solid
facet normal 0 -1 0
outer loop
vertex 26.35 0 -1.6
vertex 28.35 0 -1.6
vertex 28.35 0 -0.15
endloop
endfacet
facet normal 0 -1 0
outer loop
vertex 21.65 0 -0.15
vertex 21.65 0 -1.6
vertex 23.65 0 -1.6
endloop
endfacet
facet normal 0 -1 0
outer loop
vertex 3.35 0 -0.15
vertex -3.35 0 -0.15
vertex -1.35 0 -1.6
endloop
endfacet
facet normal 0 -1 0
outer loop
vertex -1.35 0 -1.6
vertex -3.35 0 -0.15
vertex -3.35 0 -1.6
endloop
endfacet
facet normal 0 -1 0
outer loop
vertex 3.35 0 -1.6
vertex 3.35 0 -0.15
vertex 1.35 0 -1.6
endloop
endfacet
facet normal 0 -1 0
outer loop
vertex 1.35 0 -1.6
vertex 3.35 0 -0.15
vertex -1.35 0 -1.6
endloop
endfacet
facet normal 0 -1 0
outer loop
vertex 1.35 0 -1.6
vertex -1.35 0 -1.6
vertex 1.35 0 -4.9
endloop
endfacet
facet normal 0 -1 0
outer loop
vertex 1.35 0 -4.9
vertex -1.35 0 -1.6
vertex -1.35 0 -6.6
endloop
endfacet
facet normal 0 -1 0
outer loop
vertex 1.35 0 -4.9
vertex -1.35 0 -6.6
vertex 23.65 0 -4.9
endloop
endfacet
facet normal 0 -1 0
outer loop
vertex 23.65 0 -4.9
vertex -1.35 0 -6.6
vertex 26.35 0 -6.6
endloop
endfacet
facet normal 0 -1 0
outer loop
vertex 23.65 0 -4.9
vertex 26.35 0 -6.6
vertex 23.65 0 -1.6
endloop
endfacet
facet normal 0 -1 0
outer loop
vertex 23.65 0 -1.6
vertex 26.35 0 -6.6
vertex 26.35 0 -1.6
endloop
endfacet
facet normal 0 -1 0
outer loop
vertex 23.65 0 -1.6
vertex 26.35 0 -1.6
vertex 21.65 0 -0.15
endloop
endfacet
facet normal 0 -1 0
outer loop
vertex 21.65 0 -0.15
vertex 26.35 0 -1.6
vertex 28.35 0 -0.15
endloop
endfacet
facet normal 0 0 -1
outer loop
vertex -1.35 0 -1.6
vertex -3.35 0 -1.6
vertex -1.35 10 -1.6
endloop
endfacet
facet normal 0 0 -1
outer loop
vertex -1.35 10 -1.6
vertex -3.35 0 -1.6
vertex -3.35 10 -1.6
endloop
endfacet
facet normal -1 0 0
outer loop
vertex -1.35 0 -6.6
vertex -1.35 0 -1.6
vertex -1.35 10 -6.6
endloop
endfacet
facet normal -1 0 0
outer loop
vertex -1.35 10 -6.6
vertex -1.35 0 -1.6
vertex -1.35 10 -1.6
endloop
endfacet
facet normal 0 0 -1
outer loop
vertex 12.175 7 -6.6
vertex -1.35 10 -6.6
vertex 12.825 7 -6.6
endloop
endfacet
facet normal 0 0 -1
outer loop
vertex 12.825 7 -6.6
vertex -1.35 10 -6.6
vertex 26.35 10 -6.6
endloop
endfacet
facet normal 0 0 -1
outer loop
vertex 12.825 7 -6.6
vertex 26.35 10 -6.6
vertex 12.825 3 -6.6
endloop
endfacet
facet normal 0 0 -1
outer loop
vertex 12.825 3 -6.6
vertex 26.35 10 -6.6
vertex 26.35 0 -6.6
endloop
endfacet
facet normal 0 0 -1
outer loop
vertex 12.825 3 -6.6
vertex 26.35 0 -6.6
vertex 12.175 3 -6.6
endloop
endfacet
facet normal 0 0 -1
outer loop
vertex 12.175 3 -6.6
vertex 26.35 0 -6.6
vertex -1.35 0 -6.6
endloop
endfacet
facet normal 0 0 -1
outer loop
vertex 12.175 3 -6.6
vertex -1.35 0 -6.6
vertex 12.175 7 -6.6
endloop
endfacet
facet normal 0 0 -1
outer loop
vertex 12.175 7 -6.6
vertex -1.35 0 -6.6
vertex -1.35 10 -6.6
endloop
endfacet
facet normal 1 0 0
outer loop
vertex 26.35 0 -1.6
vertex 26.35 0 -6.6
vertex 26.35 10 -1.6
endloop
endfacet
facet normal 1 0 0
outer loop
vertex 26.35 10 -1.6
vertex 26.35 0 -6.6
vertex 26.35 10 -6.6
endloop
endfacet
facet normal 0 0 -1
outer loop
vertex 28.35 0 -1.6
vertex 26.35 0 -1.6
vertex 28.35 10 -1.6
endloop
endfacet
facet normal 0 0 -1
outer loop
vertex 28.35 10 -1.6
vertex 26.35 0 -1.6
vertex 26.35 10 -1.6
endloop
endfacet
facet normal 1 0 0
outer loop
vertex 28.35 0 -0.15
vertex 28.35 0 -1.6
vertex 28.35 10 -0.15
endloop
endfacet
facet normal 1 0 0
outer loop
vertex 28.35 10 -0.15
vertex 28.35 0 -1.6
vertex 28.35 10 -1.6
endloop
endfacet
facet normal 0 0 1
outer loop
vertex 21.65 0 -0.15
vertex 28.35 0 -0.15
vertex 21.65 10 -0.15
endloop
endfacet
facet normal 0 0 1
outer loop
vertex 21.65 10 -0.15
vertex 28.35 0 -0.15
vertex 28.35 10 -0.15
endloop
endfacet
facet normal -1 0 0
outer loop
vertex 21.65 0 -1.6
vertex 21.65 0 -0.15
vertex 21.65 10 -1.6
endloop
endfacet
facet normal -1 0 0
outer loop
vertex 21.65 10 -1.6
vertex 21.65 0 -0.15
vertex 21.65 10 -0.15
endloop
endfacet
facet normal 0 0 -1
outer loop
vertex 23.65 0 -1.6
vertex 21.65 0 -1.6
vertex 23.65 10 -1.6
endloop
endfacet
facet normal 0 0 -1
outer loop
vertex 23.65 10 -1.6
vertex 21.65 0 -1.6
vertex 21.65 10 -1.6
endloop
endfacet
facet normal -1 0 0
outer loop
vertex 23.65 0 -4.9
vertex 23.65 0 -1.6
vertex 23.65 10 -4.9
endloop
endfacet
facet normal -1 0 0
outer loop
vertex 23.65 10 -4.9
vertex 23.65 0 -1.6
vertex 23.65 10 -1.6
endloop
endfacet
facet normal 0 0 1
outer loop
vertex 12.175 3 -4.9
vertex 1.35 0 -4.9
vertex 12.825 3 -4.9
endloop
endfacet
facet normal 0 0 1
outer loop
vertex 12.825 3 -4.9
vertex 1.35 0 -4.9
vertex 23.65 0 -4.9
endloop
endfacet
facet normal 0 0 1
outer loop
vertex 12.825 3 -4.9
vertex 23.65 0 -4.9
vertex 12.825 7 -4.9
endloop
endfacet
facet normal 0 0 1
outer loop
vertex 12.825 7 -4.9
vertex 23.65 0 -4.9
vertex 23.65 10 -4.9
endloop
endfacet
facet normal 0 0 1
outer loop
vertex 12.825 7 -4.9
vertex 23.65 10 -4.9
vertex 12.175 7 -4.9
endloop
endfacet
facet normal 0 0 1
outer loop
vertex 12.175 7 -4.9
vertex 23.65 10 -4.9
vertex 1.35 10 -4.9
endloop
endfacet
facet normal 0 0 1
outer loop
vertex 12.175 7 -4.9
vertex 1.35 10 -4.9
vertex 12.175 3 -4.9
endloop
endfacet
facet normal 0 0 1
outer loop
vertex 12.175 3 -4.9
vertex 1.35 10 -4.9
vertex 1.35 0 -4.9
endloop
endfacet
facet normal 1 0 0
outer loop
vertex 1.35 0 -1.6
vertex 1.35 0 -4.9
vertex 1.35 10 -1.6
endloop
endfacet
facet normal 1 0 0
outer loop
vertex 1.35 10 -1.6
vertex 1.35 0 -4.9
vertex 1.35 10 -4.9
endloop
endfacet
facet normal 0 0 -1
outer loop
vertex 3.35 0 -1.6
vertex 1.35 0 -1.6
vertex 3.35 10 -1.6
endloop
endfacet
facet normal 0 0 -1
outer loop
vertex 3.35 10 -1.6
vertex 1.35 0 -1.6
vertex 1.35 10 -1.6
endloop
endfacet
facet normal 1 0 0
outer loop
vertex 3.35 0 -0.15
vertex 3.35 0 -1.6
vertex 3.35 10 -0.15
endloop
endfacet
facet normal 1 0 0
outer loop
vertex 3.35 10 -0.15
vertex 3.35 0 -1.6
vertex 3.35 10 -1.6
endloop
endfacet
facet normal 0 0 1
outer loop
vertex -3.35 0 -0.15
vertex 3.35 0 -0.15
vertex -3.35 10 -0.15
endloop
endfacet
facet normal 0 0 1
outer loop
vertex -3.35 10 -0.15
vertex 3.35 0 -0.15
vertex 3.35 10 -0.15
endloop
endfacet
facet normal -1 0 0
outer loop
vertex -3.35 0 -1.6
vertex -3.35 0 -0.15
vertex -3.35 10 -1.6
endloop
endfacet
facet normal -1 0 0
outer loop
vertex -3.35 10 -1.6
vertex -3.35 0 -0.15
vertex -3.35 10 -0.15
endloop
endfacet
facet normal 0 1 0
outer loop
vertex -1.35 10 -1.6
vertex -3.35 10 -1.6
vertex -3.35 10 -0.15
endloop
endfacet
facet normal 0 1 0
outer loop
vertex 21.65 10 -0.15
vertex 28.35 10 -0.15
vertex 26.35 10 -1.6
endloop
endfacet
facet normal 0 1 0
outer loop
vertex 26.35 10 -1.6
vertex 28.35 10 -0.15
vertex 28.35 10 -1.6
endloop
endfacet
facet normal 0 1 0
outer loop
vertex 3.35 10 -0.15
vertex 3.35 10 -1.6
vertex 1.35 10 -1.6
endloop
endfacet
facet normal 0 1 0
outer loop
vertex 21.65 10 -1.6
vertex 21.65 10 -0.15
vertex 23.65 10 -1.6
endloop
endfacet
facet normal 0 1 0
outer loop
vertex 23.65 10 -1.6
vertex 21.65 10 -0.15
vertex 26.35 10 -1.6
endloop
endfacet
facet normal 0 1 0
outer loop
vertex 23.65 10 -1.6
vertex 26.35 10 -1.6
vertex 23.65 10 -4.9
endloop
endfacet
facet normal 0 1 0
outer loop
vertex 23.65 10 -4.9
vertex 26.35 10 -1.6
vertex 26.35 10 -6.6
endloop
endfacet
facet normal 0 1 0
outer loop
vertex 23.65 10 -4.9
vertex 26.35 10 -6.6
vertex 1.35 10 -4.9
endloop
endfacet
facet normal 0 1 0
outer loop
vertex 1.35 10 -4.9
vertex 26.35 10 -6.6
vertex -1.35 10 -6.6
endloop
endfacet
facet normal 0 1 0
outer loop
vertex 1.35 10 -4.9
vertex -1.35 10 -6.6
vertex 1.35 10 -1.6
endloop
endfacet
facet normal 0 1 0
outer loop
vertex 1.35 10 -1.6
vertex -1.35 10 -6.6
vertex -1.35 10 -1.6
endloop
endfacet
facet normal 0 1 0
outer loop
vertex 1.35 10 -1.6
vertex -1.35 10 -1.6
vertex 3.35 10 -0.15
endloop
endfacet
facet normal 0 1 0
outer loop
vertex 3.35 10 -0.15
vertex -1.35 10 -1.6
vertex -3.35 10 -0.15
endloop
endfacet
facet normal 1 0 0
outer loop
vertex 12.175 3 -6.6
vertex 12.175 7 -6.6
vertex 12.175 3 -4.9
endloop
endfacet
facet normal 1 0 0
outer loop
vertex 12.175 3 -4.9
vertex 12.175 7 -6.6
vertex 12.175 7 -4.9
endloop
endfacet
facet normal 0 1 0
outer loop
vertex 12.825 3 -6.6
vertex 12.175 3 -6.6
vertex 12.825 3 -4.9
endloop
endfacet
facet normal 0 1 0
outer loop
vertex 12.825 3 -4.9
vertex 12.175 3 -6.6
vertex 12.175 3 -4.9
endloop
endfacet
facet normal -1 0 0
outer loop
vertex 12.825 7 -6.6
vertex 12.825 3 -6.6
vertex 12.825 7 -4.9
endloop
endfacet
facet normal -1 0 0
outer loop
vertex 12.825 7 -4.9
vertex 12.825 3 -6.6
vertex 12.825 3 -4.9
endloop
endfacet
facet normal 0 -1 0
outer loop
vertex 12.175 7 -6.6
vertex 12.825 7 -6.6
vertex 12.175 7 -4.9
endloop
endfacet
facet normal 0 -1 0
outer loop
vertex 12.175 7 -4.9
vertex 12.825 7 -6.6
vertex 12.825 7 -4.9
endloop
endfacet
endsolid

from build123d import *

# Parameters (mm, degrees)
BOSS_EXTRUDE1_DEPTH = 10
CUT_EXTRUDE2_DEPTH  = 11
SKETCH3_W           = 0.65
SKETCH3_H           = 4
CUT_EXTRUDE3_DEPTH  = 7.45


with BuildPart() as part:
    # Sketch1 → Boss-Extrude1 (new body)
    with BuildSketch(Plane(origin=(0, 0, 0), x_dir=(1, 0, 0), z_dir=(0, 1, 0))):
        Polygon((1.5, 1.75), (3.5, 1.75), (3.5, 0), (-3.5, 0), (-3.5, 1.75), (-1.5, 1.75), (-1.5, 6.75), (1.5, 6.75), (23.5, 6.75), (26.5, 6.75), (26.5, 1.75), (28.5, 1.75), (28.5, 0), (21.5, 0), (21.5, 1.75), (23.5, 1.75), (23.5, 4.75), (1.5, 4.75), align=None)
    extrude(amount=BOSS_EXTRUDE1_DEPTH)

    # Sketch2 → Cut-Extrude2 (cut, through all)
    with BuildSketch(Plane(origin=(0, 10, 0), x_dir=(1, 0, 0), z_dir=(0, 1, 0))):
        Polygon((-3.65, 1.9), (-3.65, -0.15), (3.65, -0.15), (3.65, 1.9), (1.65, 1.9), (1.65, 4.6), (23.35, 4.6), (23.35, 1.9), (21.35, 1.9), (21.35, -0.15), (28.65, -0.15), (28.65, 1.9), (26.65, 1.9), (26.65, 6.9), (-1.65, 6.9), (-1.65, 1.9), align=None)
        Polygon((-3.35, 1.6), (-3.35, 0.15), (3.35, 0.15), (3.35, 1.6), (1.35, 1.6), (1.35, 4.9), (23.65, 4.9), (23.65, 1.6), (21.65, 1.6), (21.65, 0.15), (28.35, 0.15), (28.35, 1.6), (26.35, 1.6), (26.35, 6.6), (-1.35, 6.6), (-1.35, 1.6), align=None, mode=Mode.SUBTRACT)
    extrude(amount=-CUT_EXTRUDE2_DEPTH, mode=Mode.SUBTRACT)

    # Sketch3 → Cut-Extrude3 (cut, through all)
    with BuildSketch(Plane(origin=(0, 0, -6.6), x_dir=(-1, 0, 0), z_dir=(0, 0, -1))):
        with Locations((-12.5, 5)):
            Rectangle(SKETCH3_W, SKETCH3_H)
    extrude(amount=-CUT_EXTRUDE3_DEPTH, mode=Mode.SUBTRACT)


solid = part.part
